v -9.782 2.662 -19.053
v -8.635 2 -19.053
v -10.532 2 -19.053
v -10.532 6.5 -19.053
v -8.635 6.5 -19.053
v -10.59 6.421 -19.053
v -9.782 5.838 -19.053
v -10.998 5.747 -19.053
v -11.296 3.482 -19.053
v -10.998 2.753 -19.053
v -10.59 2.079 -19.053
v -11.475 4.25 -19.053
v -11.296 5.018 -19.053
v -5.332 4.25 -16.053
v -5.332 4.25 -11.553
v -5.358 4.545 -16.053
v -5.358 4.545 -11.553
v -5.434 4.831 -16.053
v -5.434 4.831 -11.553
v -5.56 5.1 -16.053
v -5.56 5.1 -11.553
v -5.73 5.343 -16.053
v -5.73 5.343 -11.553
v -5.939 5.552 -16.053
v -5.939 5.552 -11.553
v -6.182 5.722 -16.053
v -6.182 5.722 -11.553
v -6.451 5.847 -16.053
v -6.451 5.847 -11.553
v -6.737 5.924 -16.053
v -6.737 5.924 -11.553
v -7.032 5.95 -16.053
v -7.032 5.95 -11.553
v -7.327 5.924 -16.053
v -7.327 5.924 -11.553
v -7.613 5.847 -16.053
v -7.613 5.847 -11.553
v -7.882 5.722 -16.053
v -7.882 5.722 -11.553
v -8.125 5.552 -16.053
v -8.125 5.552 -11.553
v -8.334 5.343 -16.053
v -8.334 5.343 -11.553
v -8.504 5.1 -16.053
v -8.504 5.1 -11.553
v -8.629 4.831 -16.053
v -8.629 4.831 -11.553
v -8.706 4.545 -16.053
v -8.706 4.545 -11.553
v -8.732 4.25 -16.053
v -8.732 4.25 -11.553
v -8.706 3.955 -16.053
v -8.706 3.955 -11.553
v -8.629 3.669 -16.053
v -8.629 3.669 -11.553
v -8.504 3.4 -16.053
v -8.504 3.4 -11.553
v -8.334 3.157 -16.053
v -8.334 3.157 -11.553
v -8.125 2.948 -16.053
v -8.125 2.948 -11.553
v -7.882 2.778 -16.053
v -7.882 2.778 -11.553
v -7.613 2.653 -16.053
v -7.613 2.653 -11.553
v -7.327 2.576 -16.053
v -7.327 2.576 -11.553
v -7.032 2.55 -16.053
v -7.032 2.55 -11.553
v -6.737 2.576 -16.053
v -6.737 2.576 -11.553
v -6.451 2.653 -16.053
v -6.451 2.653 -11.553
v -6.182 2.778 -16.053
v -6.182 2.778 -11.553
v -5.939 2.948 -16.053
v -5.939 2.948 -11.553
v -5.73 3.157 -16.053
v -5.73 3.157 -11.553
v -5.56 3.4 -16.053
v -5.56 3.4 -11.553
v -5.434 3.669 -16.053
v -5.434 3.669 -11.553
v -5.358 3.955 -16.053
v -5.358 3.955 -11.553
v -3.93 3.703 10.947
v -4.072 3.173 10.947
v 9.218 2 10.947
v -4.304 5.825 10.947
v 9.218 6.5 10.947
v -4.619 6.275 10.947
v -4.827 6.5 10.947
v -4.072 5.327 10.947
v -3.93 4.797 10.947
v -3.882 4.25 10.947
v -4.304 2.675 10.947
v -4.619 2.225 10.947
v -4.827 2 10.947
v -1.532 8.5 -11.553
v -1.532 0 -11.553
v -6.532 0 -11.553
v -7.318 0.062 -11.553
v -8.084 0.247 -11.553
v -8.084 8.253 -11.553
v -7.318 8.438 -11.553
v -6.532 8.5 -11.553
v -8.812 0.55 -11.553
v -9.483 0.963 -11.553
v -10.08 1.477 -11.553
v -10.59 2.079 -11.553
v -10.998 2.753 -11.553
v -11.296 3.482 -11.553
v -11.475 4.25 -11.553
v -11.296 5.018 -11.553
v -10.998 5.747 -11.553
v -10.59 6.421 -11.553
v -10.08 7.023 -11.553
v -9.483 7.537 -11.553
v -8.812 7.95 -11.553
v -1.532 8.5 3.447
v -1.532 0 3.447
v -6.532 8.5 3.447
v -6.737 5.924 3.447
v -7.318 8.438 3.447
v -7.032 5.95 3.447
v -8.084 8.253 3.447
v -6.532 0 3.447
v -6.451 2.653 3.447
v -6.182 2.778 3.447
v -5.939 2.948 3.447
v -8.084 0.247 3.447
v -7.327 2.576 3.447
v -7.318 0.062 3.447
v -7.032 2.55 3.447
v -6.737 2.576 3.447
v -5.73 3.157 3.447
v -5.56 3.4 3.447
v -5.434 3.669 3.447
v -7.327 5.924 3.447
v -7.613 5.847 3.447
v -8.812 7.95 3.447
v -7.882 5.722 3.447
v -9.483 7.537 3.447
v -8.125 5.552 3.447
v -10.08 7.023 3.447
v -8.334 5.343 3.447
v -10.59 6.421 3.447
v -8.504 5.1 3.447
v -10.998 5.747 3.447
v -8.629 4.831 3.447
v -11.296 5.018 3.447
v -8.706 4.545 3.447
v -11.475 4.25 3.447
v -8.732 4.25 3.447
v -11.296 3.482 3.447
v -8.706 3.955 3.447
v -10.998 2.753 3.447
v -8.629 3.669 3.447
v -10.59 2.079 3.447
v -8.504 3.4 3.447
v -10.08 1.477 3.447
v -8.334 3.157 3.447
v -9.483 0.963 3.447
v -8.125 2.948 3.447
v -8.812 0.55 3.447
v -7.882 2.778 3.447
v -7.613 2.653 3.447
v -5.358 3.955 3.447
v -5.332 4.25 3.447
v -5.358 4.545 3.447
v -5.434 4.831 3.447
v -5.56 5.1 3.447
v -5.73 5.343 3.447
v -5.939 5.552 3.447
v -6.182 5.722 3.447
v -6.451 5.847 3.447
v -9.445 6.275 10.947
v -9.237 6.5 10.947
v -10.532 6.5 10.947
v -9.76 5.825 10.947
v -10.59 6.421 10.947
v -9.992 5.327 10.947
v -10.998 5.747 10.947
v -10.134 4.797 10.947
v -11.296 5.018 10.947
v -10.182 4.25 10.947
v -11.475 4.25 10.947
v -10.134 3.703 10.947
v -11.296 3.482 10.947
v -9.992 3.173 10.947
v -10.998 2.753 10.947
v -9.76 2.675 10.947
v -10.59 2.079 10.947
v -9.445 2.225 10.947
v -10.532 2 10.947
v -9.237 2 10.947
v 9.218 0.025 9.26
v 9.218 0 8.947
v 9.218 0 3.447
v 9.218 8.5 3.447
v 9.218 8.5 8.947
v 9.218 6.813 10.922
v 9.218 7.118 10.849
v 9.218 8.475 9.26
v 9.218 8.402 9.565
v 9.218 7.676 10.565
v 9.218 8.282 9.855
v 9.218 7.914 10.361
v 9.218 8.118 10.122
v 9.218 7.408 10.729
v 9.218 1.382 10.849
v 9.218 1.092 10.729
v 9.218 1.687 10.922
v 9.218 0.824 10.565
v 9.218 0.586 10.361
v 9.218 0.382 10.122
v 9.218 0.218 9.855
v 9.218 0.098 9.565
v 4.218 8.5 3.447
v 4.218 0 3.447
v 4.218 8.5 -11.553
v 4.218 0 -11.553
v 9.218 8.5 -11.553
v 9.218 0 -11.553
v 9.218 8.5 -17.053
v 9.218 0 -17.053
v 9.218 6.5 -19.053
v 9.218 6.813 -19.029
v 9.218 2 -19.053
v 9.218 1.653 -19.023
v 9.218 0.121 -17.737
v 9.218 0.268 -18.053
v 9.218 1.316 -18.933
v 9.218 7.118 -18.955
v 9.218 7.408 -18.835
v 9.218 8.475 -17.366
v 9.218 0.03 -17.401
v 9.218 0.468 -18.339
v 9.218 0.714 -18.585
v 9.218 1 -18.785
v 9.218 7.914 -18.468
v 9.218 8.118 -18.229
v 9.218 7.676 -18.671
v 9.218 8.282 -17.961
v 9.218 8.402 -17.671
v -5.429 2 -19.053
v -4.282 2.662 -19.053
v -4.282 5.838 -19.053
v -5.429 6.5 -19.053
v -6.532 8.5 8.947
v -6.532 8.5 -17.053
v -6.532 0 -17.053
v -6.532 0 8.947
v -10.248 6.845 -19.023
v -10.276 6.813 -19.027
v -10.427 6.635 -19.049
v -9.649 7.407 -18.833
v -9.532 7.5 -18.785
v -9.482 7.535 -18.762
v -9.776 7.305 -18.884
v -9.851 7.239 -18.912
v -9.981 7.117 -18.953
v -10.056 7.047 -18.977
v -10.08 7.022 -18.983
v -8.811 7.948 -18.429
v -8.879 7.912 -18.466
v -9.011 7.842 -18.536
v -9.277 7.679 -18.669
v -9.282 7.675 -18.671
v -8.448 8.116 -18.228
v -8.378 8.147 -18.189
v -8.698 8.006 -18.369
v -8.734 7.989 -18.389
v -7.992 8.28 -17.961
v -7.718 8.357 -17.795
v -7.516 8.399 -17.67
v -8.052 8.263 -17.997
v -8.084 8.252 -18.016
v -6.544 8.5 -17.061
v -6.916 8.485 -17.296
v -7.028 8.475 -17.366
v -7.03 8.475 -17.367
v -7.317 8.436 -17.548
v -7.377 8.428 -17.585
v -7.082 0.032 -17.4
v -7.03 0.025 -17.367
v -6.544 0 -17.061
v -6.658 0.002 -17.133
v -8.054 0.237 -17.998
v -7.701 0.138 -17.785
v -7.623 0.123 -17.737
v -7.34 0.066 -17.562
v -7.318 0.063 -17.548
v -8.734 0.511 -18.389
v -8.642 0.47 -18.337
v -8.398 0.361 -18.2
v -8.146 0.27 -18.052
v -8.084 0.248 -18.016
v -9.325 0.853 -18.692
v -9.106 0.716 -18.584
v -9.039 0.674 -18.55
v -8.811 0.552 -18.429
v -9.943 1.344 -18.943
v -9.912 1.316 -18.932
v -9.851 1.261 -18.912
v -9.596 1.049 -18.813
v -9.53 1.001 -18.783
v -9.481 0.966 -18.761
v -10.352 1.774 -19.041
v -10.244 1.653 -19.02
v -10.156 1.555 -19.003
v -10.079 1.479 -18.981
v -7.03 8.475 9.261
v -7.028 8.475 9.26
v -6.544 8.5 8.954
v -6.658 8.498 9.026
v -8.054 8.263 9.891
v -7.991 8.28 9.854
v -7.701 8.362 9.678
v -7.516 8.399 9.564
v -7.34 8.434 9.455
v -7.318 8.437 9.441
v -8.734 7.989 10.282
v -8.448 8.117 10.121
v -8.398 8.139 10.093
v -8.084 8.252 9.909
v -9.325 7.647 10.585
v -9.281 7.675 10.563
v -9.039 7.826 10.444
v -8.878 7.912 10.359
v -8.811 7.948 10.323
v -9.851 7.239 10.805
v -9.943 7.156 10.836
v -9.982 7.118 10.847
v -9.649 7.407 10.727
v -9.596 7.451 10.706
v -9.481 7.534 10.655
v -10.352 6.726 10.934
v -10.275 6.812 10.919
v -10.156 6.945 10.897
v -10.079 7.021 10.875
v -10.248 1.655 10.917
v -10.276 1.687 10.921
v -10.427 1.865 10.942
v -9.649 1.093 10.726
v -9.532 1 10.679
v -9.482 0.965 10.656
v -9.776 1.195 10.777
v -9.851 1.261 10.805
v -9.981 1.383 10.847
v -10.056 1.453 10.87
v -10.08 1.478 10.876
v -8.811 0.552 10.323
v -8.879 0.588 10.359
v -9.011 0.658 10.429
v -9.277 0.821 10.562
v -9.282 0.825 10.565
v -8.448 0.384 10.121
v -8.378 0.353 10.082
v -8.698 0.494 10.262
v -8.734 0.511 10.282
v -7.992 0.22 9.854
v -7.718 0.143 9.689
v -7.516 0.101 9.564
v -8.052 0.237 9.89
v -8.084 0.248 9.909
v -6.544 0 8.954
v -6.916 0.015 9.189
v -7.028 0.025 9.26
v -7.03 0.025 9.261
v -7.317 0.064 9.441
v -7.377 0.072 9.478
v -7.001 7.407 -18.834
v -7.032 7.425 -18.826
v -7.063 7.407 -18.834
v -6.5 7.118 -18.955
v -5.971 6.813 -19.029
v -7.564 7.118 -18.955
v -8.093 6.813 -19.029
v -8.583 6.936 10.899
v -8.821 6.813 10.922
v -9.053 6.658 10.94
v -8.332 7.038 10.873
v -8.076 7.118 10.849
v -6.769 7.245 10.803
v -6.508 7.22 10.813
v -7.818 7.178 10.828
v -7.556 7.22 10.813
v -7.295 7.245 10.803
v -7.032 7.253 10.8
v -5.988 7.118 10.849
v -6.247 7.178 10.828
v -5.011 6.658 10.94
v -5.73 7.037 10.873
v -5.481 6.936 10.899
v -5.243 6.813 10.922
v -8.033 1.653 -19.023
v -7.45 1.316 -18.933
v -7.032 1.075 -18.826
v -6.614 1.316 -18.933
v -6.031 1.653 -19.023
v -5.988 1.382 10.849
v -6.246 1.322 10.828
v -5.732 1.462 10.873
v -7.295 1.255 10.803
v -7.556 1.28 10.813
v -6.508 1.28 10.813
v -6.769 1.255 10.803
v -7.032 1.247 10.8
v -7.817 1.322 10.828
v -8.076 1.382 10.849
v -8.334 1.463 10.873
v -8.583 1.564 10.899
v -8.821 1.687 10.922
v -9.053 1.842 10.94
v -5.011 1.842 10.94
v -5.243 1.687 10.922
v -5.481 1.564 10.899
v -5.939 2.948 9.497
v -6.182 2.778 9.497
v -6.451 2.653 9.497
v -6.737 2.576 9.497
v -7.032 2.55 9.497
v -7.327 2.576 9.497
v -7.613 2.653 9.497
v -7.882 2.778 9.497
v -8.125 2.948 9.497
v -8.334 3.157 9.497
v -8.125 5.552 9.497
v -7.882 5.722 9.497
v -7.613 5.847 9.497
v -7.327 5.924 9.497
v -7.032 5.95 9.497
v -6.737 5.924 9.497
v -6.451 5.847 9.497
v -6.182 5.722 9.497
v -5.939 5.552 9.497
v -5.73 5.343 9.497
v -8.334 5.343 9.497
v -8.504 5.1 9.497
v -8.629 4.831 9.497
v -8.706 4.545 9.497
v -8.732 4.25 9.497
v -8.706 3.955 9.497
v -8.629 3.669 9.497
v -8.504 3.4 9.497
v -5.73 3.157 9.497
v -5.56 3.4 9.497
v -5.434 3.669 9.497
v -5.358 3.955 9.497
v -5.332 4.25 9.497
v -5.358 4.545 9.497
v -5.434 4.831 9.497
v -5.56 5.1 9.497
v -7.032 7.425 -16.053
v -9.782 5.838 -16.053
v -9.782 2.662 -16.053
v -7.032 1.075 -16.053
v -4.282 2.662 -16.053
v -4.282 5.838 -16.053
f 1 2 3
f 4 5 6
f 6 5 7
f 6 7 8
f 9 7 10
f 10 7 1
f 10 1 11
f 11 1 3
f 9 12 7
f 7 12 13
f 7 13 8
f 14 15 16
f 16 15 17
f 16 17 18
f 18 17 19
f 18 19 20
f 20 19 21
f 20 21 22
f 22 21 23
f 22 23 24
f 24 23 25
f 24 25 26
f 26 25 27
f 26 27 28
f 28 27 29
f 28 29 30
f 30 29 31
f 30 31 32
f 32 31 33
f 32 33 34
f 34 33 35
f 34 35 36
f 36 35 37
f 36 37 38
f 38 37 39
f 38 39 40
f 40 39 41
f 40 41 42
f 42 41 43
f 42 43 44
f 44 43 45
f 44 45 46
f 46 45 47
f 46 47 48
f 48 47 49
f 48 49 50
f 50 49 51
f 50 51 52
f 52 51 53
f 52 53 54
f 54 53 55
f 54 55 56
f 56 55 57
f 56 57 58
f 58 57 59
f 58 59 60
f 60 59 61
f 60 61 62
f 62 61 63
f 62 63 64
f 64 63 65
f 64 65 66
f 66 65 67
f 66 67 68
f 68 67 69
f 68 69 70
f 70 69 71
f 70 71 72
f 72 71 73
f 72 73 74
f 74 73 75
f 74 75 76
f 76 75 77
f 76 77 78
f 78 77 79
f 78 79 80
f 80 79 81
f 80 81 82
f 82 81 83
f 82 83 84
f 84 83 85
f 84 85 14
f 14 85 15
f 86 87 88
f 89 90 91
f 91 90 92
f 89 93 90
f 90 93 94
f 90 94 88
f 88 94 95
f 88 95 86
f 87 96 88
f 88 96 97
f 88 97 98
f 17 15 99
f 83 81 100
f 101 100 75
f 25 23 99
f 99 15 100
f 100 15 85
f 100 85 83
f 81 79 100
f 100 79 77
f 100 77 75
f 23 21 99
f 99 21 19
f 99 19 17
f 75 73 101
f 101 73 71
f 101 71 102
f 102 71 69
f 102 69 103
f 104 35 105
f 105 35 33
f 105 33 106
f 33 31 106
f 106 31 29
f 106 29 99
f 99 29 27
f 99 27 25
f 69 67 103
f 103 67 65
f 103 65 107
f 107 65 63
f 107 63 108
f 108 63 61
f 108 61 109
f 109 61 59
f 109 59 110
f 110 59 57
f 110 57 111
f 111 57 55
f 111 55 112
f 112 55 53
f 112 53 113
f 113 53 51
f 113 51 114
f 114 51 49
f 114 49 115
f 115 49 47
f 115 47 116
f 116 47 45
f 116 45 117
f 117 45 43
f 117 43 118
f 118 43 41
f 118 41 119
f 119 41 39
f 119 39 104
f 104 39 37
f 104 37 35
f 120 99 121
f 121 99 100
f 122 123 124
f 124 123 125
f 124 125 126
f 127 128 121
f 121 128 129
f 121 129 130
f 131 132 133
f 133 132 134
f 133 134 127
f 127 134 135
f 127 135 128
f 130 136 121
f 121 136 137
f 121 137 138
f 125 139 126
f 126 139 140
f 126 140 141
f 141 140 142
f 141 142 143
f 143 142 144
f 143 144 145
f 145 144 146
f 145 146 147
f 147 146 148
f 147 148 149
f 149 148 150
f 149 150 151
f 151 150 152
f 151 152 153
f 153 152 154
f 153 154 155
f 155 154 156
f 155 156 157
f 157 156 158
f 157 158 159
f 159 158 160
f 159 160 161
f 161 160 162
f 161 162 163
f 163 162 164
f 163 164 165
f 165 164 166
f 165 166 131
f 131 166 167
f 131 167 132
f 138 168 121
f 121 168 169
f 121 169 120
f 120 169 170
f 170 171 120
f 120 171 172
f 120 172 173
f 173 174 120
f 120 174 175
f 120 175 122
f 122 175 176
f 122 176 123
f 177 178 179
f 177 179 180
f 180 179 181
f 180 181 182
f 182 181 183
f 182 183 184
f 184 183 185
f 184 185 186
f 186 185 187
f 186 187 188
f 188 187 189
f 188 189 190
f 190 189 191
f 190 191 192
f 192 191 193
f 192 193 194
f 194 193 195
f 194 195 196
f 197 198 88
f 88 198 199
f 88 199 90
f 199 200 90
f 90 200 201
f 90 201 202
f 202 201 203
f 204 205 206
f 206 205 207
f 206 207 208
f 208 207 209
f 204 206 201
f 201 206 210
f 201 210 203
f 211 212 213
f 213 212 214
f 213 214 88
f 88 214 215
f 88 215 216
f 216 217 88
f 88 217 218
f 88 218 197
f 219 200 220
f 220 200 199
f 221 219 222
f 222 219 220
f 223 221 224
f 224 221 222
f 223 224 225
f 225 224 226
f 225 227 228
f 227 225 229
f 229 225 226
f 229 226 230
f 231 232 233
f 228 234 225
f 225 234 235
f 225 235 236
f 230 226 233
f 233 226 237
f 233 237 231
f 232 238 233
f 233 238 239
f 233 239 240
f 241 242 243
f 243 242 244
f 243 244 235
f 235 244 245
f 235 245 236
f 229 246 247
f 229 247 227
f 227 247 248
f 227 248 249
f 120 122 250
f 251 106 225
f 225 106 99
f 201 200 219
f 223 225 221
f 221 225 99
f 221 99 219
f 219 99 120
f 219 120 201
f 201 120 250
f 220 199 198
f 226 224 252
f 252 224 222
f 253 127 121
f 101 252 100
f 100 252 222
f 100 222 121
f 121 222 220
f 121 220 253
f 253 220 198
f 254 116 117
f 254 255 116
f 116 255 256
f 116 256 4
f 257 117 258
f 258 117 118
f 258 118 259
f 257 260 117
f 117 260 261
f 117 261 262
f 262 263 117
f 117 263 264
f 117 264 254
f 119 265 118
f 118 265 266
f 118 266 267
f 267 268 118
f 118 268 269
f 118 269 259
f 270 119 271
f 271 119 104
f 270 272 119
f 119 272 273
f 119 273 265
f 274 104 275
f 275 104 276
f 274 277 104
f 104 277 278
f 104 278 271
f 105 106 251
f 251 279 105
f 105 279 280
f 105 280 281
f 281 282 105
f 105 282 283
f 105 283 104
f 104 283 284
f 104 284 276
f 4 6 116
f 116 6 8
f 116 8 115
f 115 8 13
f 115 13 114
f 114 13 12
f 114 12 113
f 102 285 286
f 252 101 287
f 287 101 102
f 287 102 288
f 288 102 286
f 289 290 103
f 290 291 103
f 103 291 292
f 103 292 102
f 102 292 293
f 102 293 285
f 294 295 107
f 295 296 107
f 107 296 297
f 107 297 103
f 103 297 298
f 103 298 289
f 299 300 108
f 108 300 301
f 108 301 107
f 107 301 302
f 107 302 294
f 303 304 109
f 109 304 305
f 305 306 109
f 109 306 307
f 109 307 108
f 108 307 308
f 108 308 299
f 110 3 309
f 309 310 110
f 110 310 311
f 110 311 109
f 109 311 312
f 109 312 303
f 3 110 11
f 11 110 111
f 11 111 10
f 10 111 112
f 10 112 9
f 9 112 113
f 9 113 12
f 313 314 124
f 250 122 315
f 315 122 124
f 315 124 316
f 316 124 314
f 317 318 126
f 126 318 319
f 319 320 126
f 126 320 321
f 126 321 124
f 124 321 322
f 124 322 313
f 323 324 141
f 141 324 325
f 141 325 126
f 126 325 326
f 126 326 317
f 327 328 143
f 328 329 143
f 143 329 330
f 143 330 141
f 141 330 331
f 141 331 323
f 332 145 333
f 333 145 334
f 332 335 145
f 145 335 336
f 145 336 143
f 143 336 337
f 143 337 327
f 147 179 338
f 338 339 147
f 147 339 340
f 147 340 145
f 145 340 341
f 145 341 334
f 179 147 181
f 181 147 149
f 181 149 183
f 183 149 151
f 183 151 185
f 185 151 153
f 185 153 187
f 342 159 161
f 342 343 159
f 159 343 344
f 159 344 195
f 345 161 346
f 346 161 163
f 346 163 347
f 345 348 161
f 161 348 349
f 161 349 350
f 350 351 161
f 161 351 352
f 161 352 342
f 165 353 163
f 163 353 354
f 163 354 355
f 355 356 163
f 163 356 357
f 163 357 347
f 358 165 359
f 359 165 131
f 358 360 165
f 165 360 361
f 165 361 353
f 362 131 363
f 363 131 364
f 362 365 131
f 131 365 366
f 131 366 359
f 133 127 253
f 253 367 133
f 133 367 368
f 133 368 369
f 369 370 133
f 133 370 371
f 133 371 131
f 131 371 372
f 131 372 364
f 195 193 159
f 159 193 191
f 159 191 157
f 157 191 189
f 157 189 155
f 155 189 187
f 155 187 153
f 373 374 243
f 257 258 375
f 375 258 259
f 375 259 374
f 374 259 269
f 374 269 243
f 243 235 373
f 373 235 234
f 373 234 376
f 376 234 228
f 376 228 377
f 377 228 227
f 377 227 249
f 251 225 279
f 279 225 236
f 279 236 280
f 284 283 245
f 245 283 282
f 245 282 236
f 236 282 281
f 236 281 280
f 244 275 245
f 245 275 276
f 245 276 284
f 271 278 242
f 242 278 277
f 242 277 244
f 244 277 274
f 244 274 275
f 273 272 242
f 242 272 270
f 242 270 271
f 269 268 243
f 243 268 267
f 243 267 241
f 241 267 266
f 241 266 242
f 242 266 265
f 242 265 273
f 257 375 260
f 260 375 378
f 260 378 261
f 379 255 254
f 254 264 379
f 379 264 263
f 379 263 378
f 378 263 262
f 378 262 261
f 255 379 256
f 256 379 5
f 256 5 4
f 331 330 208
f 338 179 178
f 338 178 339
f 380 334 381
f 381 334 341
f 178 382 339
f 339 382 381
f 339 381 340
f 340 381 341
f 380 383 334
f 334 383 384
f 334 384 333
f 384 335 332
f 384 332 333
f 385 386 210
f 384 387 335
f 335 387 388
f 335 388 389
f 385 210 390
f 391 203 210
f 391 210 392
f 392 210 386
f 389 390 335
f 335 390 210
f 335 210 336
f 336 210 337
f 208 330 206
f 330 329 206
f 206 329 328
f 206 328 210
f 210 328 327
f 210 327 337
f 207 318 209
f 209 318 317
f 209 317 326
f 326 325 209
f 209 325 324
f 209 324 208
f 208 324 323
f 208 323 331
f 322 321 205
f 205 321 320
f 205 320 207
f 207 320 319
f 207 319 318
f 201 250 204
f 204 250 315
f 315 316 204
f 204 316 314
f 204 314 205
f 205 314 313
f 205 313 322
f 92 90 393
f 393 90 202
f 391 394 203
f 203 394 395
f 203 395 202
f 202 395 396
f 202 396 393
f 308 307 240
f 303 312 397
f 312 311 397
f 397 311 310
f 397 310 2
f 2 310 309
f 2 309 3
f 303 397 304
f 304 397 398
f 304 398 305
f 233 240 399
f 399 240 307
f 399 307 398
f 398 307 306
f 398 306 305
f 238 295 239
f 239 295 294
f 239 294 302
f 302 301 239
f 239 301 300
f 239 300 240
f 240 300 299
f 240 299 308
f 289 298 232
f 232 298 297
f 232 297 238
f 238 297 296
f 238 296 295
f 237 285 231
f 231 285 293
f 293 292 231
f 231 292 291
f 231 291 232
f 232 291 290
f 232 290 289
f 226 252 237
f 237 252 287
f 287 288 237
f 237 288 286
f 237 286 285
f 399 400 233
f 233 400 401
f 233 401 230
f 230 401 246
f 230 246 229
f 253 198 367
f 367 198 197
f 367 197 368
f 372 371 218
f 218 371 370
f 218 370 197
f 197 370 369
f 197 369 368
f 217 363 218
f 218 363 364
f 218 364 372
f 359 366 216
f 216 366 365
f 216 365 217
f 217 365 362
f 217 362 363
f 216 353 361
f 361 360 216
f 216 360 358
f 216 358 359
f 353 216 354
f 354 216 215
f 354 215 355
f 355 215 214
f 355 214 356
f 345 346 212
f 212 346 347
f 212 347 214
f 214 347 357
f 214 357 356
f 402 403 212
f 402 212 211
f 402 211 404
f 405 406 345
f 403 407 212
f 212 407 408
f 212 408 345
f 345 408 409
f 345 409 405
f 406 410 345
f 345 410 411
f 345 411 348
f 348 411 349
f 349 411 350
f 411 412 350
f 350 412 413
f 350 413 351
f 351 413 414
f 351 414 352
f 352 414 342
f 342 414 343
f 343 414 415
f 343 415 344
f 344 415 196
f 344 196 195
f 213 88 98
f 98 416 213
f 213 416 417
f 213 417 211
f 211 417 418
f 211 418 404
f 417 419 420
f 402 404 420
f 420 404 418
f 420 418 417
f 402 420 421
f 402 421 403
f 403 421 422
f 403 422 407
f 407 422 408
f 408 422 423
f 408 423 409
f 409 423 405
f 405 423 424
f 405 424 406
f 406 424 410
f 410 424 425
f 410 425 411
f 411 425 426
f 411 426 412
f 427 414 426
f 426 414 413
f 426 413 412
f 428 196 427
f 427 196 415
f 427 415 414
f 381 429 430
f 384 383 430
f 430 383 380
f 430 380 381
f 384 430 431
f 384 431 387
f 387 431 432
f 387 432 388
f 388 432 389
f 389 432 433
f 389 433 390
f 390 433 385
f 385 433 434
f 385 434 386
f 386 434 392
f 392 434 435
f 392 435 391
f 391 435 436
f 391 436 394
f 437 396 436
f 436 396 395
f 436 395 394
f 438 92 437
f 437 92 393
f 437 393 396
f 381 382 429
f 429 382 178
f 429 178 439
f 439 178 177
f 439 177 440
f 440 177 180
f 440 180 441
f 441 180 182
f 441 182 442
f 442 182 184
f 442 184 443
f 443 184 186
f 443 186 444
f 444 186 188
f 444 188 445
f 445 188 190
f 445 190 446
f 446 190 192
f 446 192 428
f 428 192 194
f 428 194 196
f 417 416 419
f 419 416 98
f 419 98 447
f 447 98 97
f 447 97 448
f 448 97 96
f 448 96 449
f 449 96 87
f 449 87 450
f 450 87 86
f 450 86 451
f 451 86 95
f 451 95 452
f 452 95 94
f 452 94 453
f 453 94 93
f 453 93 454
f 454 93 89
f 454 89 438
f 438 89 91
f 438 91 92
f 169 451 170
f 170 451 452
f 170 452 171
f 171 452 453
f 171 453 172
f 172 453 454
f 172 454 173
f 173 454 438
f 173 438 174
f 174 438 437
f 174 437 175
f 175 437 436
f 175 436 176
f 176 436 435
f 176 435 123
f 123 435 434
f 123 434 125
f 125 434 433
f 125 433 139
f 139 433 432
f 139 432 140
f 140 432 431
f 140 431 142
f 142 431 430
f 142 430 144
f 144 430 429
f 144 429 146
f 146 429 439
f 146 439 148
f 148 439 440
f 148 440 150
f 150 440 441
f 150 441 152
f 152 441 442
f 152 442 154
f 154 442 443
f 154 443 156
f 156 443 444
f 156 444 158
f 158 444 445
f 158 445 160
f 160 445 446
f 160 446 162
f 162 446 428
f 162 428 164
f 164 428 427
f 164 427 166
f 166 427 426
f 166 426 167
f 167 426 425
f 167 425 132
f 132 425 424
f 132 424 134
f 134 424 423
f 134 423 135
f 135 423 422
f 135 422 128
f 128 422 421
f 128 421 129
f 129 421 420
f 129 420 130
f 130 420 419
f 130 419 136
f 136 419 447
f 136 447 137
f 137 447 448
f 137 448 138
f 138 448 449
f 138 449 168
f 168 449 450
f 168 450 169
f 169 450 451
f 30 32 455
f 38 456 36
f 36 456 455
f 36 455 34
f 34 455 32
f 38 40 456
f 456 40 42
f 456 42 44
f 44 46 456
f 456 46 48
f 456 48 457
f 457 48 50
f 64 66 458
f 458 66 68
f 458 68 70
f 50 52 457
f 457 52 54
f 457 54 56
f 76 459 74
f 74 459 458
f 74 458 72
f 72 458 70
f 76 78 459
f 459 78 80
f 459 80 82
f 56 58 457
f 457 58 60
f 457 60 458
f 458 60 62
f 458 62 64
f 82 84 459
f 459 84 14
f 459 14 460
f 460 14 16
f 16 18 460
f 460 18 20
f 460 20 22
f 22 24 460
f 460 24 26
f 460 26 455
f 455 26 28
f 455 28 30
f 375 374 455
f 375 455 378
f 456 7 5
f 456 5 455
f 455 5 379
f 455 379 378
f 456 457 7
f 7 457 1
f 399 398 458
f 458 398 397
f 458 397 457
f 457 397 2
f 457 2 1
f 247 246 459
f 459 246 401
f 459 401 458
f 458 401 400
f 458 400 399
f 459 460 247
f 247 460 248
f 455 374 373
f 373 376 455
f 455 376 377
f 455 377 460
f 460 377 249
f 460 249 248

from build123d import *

# Parameters (mm, degrees)
BOSS_EXTRUDE1_DEPTH                                 = 8.5
CUT_EXTRUDE1_REACH                                  = 35.245
SKETCH2_R                                           = 1.5
FILLET1_R                                           = 5
FILLET2_R                                           = 2
CSK_FOR_M3_COUNTERSUNK_FLAT_HEAD_SCREW1_D           = 3.4
CSK_FOR_M3_COUNTERSUNK_FLAT_HEAD_SCREW1_CSINK_D     = 6.3
CSK_FOR_M3_COUNTERSUNK_FLAT_HEAD_SCREW1_CSINK_ANGLE = 90
CUT_EXTRUDE2_DEPTH                                  = 3


with BuildPart() as part:
    # Sketch1 → Boss-Extrude1 (new body)
    with BuildSketch(Plane(origin=(0, 0, 0), x_dir=(1, 0, 0), z_dir=(0, 1, 0))):
        Polygon((-11.531971071, 19.053328449), (9.218028929, 19.053328449), (9.218028929, 11.553328449), (4.218028929, 11.553328449), (4.218028929, -3.446671551), (9.218028929, -3.446671551), (9.218028929, -10.946671551), (-11.531971071, -10.946671551), (-11.531971071, -3.446671551), (-1.531971071, -3.446671551), (-1.531971071, 11.553328449), (-11.531971071, 11.553328449), align=None)
    extrude(amount=BOSS_EXTRUDE1_DEPTH)

    # Cut-Extrude1: up to this face of the body (flat: up to its plane)
    cut_extrude1_end = Plane(part.part.faces().sort_by_distance((-1.156971071, 4.25, -19.053328449))[0])
    # Sketch2 → Cut-Extrude1 (cut, up to the picked face)
    with BuildSketch(Plane.XY.offset(10.946671551), mode=Mode.PRIVATE) as cut_extrude1_sk1:
        with Locations((-7.031971071, 4.25)):
            Circle(SKETCH2_R)
    cut_extrude1_tool1 = split(extrude(cut_extrude1_sk1.sketch, amount=-CUT_EXTRUDE1_REACH, mode=Mode.PRIVATE), bisect_by=cut_extrude1_end, keep=Keep.BOTH, mode=Mode.PRIVATE)
    add(cut_extrude1_tool1.solids().sort_by(Axis((-7.031971, 4.25, 10.946672), (0, 0, -1)))[0], mode=Mode.SUBTRACT)

    # Fillet1
    # the kernel refuses this fillet: 5 mm, written as the material it takes off along each edge
    with BuildSketch(Plane(origin=(-11.531971071, 0, 0.946671551), x_dir=(0, 1, 0), z_dir=(0, 0, -1)), Plane(origin=(-11.531971071, 8.5, 23.446671551), x_dir=(1, 0, 0), z_dir=(0, 0, -1))) as fillet1_piece_1:
        with BuildLine():
            CenterArc((FILLET1_R, FILLET1_R), FILLET1_R, 180, 90)
            Line((0, FILLET1_R), (0, 0))
            Line((0, 0), (FILLET1_R, 0))
        make_face()
    extrude(amount=32.5, mode=Mode.SUBTRACT)
    with BuildSketch(Plane(origin=(-11.531971071, 8.5, 0.946671551), x_dir=(0, -1, 0), z_dir=(0, 0, -1)), Plane(origin=(-11.531971071, 0, 23.446671551), x_dir=(1, 0, 0), z_dir=(0, 0, -1))) as fillet1_piece_2:
        with BuildLine():
            CenterArc((FILLET1_R, -FILLET1_R), FILLET1_R, 90, 90)
            Line((0, -FILLET1_R), (0, 0))
            Line((0, 0), (FILLET1_R, 0))
        make_face()
    extrude(amount=32.5, mode=Mode.SUBTRACT)

    # Fillet2
    # the kernel refuses this fillet: 2 mm, written as the material it takes off along each edge
    with BuildSketch(Plane(origin=(-11.531971071, 0, -19.053328449), x_dir=(0, 1, 0), z_dir=(1, 0, 0)), Plane(origin=(14.218028929, 8.5, 10.946671551), x_dir=(0, 0, -1), z_dir=(-1, 0, 0))) as fillet2_piece_1:
        with BuildLine():
            CenterArc((FILLET2_R, FILLET2_R), FILLET2_R, 180, 90)
            Line((0, FILLET2_R), (0, 0))
            Line((0, 0), (FILLET2_R, 0))
        make_face()
    extrude(amount=25.75, mode=Mode.SUBTRACT)
    with BuildSketch(Plane(origin=(-11.531971071, 8.5, -19.053328449), x_dir=(0, -1, 0), z_dir=(1, 0, 0)), Plane(origin=(14.218028929, 0, 10.946671551), x_dir=(0, 0, -1), z_dir=(-1, 0, 0))) as fillet2_piece_2:
        with BuildLine():
            CenterArc((FILLET2_R, -FILLET2_R), FILLET2_R, 90, 90)
            Line((0, -FILLET2_R), (0, 0))
            Line((0, 0), (FILLET2_R, 0))
        make_face()
    extrude(amount=25.75, mode=Mode.SUBTRACT)

    # CSK for M3 Countersunk Flat Head Screw1 (through all)
    with Locations(Plane.XY.offset(10.946671551)):
        with Locations((-7.031971071, 4.25)):
            CounterSinkHole(CSK_FOR_M3_COUNTERSUNK_FLAT_HEAD_SCREW1_D / 2, CSK_FOR_M3_COUNTERSUNK_FLAT_HEAD_SCREW1_CSINK_D / 2, counter_sink_angle=CSK_FOR_M3_COUNTERSUNK_FLAT_HEAD_SCREW1_CSINK_ANGLE)

    # Sketch5 → Cut-Extrude2 (cut)
    with BuildSketch(Plane(origin=(0, 0, -19.053328449), x_dir=(-1, 0, 0), z_dir=(0, 0, -1))):
        Polygon((7.031971071, 7.425426481), (4.281971071, 5.83771324), (4.281971071, 2.66228676), (7.031971071, 1.074573519), (9.781971071, 2.66228676), (9.781971071, 5.83771324), align=None)
    extrude(amount=-CUT_EXTRUDE2_DEPTH, mode=Mode.SUBTRACT)


solid = part.part
